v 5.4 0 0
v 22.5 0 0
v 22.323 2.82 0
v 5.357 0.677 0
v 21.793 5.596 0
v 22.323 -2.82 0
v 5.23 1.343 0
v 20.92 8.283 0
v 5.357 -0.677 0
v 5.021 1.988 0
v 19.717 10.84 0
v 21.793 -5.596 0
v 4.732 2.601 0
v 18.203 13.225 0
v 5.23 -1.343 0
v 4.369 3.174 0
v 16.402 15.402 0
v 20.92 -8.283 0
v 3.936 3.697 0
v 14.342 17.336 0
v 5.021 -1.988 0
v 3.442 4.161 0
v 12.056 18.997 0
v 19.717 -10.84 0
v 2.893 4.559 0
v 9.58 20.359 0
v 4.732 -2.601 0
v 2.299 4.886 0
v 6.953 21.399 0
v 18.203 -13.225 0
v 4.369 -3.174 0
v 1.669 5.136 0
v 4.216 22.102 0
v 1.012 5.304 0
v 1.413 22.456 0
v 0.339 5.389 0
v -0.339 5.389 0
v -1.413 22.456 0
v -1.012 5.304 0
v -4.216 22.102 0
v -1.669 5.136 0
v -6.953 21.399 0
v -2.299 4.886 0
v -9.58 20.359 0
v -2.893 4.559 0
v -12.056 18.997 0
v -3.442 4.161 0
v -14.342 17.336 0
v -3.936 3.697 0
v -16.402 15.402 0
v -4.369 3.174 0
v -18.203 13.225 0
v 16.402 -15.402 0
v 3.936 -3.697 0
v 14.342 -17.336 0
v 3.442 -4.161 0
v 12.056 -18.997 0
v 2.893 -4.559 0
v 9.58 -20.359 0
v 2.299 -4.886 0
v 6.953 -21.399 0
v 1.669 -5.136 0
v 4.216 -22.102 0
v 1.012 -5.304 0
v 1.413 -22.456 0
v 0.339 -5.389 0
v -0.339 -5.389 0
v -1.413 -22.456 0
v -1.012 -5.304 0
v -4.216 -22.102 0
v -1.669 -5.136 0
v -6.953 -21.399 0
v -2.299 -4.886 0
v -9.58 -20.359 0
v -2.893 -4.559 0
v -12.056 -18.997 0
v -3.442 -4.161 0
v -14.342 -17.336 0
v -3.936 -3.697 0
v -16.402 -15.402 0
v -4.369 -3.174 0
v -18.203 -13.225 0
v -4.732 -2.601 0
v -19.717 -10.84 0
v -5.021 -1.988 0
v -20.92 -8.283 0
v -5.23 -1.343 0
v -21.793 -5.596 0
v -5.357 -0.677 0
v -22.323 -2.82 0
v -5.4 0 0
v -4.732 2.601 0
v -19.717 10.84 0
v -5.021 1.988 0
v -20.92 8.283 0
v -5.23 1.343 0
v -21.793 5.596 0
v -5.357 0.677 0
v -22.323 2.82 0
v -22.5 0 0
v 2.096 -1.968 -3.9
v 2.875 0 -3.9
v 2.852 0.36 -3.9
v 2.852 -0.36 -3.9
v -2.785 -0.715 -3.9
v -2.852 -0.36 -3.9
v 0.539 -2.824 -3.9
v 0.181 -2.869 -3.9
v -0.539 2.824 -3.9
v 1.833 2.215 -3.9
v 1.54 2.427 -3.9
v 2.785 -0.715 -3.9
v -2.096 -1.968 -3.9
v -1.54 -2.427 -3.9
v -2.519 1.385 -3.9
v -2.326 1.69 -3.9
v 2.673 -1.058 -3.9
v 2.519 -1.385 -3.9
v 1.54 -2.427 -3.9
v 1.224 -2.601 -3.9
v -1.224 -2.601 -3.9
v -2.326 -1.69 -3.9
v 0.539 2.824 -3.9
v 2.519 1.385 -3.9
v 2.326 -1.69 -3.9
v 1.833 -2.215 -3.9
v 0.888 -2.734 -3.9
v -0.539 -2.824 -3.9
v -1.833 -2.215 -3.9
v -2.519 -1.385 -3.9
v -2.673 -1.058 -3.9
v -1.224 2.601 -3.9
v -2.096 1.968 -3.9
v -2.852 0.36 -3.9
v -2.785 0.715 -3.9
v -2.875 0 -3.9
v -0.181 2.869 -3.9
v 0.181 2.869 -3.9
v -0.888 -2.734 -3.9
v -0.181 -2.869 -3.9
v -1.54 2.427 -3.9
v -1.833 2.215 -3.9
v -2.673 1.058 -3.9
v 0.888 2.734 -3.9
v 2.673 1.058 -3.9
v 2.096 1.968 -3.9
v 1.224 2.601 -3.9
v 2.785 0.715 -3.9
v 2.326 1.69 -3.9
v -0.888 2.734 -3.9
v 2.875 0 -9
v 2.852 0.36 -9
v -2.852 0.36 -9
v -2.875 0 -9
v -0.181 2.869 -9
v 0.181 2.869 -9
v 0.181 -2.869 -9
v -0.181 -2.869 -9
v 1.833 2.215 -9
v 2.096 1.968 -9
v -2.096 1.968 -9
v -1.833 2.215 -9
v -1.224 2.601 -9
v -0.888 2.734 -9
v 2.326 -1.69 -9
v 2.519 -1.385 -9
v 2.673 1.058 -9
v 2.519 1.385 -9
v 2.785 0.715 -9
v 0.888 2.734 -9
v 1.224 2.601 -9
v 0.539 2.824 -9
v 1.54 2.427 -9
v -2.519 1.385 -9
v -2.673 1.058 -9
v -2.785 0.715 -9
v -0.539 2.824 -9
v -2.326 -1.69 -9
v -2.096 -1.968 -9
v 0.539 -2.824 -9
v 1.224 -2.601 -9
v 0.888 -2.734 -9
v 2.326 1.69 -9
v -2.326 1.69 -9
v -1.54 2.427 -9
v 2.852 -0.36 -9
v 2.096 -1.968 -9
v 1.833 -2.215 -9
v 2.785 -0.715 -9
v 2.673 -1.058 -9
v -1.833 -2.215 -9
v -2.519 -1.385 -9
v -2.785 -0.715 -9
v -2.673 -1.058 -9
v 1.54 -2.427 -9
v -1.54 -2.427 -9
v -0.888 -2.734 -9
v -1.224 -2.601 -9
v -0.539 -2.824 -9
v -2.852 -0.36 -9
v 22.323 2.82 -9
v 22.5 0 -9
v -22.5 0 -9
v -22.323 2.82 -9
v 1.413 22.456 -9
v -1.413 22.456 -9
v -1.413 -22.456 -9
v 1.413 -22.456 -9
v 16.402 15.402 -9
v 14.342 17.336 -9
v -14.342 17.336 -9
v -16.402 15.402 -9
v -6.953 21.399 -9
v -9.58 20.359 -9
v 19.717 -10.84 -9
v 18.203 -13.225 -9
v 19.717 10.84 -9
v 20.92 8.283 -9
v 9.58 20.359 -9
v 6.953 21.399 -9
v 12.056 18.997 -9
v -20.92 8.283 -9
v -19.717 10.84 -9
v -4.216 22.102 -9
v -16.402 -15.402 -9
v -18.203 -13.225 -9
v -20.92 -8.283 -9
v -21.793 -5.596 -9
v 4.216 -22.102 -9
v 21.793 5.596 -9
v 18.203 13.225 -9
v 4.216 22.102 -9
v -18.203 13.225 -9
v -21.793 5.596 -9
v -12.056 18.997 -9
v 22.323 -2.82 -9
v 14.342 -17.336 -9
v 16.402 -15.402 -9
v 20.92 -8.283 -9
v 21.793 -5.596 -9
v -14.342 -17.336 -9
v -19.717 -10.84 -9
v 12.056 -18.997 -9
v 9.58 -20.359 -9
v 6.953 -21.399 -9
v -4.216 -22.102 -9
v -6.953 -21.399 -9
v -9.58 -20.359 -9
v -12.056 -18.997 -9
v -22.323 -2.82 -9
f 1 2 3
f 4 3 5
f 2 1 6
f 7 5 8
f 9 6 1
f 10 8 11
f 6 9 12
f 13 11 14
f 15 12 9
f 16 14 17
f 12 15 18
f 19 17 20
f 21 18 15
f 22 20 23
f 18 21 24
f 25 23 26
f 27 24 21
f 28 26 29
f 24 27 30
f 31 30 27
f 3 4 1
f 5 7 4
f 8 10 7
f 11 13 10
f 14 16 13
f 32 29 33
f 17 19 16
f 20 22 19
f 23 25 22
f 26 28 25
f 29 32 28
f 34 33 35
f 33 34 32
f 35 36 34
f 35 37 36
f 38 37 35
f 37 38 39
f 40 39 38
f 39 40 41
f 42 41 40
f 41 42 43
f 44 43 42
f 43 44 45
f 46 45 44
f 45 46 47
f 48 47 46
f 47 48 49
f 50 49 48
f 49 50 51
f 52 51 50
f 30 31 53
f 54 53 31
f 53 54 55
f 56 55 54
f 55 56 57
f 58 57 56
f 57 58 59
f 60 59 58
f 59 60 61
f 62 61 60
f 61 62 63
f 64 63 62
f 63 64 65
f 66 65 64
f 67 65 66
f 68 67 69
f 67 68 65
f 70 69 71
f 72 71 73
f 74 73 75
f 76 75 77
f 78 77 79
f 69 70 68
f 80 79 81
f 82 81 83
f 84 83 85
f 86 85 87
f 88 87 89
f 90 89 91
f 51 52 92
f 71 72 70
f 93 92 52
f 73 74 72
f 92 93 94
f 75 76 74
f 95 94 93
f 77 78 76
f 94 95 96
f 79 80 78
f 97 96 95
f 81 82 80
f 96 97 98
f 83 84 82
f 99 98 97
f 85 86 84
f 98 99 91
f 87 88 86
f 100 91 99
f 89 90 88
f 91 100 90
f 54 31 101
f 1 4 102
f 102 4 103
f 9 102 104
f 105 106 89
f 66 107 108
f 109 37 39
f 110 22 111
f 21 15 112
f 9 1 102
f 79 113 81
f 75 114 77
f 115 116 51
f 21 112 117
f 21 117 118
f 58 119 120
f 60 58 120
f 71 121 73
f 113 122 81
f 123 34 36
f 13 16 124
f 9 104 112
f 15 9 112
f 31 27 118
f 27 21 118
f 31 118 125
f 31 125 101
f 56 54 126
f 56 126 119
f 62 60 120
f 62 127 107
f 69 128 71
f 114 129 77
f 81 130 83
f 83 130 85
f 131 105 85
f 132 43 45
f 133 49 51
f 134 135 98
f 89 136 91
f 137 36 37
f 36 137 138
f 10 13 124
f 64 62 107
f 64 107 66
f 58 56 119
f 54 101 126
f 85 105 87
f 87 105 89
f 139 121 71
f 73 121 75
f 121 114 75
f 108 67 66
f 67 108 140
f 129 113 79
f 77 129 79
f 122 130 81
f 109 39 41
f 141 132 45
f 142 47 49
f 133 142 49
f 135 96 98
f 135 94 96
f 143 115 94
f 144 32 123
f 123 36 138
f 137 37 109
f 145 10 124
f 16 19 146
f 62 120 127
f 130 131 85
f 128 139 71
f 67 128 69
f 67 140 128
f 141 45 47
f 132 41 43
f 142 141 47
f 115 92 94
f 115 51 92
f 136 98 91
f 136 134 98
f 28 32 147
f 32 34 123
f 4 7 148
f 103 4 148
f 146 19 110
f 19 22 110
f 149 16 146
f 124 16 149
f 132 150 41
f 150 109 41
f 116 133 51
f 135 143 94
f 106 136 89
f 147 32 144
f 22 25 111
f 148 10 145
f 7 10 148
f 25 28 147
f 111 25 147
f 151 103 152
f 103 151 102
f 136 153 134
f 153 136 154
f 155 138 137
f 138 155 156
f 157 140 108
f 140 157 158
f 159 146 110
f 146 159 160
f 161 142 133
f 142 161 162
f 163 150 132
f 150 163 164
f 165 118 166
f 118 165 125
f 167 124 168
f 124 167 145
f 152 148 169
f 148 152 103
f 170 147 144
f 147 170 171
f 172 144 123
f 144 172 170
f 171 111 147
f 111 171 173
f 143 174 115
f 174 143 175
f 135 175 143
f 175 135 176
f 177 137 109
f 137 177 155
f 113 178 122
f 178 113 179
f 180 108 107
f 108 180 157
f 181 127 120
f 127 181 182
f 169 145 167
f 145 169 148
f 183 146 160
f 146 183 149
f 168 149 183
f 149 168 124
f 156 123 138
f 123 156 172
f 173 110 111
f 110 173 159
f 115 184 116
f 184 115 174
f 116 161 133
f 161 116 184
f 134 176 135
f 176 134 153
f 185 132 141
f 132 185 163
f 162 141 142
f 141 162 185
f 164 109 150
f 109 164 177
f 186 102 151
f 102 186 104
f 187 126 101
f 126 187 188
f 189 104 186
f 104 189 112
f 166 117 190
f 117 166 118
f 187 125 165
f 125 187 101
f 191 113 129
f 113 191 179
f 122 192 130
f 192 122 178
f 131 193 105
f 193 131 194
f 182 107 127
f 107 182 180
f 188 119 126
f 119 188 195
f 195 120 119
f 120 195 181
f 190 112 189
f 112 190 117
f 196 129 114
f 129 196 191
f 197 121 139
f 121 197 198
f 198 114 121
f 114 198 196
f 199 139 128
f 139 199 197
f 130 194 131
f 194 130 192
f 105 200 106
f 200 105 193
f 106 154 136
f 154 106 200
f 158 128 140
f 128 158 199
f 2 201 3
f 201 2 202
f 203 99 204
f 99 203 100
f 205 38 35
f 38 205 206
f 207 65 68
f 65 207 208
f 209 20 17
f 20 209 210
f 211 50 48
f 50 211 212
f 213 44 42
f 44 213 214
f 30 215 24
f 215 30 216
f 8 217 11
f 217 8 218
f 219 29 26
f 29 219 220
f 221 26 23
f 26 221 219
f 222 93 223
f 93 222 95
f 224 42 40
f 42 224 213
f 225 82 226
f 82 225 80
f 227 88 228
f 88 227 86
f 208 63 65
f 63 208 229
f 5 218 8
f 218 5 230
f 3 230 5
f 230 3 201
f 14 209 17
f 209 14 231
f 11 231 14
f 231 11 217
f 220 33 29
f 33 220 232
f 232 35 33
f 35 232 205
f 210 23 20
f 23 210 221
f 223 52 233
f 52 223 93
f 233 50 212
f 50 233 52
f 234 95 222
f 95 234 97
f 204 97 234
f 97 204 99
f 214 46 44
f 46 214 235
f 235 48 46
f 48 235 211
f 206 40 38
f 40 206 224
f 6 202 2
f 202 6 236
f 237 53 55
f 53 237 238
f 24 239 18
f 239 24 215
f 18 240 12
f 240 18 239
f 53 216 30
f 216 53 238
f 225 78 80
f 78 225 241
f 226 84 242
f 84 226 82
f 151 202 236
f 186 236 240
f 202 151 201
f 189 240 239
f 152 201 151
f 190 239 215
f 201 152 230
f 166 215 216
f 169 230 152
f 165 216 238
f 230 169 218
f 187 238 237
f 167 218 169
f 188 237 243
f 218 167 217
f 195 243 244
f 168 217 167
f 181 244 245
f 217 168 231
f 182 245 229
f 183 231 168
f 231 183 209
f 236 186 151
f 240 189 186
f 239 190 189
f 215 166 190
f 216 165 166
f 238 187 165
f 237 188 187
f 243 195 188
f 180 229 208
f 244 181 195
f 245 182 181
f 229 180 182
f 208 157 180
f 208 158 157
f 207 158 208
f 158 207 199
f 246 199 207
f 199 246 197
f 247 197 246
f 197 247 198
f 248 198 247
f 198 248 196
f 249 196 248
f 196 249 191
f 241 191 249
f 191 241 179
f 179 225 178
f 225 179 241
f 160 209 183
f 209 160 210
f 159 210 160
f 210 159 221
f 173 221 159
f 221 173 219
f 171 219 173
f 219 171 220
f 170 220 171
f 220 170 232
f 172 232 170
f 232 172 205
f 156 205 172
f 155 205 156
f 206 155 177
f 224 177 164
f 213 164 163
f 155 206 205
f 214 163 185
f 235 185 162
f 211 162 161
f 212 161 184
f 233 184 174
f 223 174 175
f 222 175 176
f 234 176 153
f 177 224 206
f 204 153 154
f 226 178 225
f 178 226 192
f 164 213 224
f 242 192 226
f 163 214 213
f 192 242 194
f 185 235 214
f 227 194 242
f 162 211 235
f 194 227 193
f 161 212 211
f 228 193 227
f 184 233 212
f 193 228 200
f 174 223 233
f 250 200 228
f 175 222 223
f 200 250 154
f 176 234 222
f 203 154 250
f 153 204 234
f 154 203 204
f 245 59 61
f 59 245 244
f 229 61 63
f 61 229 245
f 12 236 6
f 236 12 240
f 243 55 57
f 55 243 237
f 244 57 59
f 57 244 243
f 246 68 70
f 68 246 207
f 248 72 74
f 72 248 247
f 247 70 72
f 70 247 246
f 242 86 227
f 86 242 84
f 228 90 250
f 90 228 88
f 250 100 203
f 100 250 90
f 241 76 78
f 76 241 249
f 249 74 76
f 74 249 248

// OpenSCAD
$fn = 50;

difference() {
	union() {
		translate(v = [0, 0, -9.0]) {
			cylinder(h = 9, r = 22.5);
		}
	}
	union() {
		translate(v = [0, 0, 0]) {
			rotate(a = [0, 0, 0]) {
				difference() {
					union() {
						translate(v = [0, 0, -12.0]) {
							cylinder(h = 12, r = 2.6);
						}
						translate(v = [0, 0, -3.9]) {
							cylinder(h = 3.9, r1 = 2.875, r2 = 5.4);
						}
						translate(v = [0, 0, -12.0]) {
							cylinder(h = 12, r = 2.875);
						}
						translate(v = [0, 0, -12.0]) {
							cylinder(h = 12, r = 2.6);
						}
					}
					union();
				}
			}
		}
	}
}
